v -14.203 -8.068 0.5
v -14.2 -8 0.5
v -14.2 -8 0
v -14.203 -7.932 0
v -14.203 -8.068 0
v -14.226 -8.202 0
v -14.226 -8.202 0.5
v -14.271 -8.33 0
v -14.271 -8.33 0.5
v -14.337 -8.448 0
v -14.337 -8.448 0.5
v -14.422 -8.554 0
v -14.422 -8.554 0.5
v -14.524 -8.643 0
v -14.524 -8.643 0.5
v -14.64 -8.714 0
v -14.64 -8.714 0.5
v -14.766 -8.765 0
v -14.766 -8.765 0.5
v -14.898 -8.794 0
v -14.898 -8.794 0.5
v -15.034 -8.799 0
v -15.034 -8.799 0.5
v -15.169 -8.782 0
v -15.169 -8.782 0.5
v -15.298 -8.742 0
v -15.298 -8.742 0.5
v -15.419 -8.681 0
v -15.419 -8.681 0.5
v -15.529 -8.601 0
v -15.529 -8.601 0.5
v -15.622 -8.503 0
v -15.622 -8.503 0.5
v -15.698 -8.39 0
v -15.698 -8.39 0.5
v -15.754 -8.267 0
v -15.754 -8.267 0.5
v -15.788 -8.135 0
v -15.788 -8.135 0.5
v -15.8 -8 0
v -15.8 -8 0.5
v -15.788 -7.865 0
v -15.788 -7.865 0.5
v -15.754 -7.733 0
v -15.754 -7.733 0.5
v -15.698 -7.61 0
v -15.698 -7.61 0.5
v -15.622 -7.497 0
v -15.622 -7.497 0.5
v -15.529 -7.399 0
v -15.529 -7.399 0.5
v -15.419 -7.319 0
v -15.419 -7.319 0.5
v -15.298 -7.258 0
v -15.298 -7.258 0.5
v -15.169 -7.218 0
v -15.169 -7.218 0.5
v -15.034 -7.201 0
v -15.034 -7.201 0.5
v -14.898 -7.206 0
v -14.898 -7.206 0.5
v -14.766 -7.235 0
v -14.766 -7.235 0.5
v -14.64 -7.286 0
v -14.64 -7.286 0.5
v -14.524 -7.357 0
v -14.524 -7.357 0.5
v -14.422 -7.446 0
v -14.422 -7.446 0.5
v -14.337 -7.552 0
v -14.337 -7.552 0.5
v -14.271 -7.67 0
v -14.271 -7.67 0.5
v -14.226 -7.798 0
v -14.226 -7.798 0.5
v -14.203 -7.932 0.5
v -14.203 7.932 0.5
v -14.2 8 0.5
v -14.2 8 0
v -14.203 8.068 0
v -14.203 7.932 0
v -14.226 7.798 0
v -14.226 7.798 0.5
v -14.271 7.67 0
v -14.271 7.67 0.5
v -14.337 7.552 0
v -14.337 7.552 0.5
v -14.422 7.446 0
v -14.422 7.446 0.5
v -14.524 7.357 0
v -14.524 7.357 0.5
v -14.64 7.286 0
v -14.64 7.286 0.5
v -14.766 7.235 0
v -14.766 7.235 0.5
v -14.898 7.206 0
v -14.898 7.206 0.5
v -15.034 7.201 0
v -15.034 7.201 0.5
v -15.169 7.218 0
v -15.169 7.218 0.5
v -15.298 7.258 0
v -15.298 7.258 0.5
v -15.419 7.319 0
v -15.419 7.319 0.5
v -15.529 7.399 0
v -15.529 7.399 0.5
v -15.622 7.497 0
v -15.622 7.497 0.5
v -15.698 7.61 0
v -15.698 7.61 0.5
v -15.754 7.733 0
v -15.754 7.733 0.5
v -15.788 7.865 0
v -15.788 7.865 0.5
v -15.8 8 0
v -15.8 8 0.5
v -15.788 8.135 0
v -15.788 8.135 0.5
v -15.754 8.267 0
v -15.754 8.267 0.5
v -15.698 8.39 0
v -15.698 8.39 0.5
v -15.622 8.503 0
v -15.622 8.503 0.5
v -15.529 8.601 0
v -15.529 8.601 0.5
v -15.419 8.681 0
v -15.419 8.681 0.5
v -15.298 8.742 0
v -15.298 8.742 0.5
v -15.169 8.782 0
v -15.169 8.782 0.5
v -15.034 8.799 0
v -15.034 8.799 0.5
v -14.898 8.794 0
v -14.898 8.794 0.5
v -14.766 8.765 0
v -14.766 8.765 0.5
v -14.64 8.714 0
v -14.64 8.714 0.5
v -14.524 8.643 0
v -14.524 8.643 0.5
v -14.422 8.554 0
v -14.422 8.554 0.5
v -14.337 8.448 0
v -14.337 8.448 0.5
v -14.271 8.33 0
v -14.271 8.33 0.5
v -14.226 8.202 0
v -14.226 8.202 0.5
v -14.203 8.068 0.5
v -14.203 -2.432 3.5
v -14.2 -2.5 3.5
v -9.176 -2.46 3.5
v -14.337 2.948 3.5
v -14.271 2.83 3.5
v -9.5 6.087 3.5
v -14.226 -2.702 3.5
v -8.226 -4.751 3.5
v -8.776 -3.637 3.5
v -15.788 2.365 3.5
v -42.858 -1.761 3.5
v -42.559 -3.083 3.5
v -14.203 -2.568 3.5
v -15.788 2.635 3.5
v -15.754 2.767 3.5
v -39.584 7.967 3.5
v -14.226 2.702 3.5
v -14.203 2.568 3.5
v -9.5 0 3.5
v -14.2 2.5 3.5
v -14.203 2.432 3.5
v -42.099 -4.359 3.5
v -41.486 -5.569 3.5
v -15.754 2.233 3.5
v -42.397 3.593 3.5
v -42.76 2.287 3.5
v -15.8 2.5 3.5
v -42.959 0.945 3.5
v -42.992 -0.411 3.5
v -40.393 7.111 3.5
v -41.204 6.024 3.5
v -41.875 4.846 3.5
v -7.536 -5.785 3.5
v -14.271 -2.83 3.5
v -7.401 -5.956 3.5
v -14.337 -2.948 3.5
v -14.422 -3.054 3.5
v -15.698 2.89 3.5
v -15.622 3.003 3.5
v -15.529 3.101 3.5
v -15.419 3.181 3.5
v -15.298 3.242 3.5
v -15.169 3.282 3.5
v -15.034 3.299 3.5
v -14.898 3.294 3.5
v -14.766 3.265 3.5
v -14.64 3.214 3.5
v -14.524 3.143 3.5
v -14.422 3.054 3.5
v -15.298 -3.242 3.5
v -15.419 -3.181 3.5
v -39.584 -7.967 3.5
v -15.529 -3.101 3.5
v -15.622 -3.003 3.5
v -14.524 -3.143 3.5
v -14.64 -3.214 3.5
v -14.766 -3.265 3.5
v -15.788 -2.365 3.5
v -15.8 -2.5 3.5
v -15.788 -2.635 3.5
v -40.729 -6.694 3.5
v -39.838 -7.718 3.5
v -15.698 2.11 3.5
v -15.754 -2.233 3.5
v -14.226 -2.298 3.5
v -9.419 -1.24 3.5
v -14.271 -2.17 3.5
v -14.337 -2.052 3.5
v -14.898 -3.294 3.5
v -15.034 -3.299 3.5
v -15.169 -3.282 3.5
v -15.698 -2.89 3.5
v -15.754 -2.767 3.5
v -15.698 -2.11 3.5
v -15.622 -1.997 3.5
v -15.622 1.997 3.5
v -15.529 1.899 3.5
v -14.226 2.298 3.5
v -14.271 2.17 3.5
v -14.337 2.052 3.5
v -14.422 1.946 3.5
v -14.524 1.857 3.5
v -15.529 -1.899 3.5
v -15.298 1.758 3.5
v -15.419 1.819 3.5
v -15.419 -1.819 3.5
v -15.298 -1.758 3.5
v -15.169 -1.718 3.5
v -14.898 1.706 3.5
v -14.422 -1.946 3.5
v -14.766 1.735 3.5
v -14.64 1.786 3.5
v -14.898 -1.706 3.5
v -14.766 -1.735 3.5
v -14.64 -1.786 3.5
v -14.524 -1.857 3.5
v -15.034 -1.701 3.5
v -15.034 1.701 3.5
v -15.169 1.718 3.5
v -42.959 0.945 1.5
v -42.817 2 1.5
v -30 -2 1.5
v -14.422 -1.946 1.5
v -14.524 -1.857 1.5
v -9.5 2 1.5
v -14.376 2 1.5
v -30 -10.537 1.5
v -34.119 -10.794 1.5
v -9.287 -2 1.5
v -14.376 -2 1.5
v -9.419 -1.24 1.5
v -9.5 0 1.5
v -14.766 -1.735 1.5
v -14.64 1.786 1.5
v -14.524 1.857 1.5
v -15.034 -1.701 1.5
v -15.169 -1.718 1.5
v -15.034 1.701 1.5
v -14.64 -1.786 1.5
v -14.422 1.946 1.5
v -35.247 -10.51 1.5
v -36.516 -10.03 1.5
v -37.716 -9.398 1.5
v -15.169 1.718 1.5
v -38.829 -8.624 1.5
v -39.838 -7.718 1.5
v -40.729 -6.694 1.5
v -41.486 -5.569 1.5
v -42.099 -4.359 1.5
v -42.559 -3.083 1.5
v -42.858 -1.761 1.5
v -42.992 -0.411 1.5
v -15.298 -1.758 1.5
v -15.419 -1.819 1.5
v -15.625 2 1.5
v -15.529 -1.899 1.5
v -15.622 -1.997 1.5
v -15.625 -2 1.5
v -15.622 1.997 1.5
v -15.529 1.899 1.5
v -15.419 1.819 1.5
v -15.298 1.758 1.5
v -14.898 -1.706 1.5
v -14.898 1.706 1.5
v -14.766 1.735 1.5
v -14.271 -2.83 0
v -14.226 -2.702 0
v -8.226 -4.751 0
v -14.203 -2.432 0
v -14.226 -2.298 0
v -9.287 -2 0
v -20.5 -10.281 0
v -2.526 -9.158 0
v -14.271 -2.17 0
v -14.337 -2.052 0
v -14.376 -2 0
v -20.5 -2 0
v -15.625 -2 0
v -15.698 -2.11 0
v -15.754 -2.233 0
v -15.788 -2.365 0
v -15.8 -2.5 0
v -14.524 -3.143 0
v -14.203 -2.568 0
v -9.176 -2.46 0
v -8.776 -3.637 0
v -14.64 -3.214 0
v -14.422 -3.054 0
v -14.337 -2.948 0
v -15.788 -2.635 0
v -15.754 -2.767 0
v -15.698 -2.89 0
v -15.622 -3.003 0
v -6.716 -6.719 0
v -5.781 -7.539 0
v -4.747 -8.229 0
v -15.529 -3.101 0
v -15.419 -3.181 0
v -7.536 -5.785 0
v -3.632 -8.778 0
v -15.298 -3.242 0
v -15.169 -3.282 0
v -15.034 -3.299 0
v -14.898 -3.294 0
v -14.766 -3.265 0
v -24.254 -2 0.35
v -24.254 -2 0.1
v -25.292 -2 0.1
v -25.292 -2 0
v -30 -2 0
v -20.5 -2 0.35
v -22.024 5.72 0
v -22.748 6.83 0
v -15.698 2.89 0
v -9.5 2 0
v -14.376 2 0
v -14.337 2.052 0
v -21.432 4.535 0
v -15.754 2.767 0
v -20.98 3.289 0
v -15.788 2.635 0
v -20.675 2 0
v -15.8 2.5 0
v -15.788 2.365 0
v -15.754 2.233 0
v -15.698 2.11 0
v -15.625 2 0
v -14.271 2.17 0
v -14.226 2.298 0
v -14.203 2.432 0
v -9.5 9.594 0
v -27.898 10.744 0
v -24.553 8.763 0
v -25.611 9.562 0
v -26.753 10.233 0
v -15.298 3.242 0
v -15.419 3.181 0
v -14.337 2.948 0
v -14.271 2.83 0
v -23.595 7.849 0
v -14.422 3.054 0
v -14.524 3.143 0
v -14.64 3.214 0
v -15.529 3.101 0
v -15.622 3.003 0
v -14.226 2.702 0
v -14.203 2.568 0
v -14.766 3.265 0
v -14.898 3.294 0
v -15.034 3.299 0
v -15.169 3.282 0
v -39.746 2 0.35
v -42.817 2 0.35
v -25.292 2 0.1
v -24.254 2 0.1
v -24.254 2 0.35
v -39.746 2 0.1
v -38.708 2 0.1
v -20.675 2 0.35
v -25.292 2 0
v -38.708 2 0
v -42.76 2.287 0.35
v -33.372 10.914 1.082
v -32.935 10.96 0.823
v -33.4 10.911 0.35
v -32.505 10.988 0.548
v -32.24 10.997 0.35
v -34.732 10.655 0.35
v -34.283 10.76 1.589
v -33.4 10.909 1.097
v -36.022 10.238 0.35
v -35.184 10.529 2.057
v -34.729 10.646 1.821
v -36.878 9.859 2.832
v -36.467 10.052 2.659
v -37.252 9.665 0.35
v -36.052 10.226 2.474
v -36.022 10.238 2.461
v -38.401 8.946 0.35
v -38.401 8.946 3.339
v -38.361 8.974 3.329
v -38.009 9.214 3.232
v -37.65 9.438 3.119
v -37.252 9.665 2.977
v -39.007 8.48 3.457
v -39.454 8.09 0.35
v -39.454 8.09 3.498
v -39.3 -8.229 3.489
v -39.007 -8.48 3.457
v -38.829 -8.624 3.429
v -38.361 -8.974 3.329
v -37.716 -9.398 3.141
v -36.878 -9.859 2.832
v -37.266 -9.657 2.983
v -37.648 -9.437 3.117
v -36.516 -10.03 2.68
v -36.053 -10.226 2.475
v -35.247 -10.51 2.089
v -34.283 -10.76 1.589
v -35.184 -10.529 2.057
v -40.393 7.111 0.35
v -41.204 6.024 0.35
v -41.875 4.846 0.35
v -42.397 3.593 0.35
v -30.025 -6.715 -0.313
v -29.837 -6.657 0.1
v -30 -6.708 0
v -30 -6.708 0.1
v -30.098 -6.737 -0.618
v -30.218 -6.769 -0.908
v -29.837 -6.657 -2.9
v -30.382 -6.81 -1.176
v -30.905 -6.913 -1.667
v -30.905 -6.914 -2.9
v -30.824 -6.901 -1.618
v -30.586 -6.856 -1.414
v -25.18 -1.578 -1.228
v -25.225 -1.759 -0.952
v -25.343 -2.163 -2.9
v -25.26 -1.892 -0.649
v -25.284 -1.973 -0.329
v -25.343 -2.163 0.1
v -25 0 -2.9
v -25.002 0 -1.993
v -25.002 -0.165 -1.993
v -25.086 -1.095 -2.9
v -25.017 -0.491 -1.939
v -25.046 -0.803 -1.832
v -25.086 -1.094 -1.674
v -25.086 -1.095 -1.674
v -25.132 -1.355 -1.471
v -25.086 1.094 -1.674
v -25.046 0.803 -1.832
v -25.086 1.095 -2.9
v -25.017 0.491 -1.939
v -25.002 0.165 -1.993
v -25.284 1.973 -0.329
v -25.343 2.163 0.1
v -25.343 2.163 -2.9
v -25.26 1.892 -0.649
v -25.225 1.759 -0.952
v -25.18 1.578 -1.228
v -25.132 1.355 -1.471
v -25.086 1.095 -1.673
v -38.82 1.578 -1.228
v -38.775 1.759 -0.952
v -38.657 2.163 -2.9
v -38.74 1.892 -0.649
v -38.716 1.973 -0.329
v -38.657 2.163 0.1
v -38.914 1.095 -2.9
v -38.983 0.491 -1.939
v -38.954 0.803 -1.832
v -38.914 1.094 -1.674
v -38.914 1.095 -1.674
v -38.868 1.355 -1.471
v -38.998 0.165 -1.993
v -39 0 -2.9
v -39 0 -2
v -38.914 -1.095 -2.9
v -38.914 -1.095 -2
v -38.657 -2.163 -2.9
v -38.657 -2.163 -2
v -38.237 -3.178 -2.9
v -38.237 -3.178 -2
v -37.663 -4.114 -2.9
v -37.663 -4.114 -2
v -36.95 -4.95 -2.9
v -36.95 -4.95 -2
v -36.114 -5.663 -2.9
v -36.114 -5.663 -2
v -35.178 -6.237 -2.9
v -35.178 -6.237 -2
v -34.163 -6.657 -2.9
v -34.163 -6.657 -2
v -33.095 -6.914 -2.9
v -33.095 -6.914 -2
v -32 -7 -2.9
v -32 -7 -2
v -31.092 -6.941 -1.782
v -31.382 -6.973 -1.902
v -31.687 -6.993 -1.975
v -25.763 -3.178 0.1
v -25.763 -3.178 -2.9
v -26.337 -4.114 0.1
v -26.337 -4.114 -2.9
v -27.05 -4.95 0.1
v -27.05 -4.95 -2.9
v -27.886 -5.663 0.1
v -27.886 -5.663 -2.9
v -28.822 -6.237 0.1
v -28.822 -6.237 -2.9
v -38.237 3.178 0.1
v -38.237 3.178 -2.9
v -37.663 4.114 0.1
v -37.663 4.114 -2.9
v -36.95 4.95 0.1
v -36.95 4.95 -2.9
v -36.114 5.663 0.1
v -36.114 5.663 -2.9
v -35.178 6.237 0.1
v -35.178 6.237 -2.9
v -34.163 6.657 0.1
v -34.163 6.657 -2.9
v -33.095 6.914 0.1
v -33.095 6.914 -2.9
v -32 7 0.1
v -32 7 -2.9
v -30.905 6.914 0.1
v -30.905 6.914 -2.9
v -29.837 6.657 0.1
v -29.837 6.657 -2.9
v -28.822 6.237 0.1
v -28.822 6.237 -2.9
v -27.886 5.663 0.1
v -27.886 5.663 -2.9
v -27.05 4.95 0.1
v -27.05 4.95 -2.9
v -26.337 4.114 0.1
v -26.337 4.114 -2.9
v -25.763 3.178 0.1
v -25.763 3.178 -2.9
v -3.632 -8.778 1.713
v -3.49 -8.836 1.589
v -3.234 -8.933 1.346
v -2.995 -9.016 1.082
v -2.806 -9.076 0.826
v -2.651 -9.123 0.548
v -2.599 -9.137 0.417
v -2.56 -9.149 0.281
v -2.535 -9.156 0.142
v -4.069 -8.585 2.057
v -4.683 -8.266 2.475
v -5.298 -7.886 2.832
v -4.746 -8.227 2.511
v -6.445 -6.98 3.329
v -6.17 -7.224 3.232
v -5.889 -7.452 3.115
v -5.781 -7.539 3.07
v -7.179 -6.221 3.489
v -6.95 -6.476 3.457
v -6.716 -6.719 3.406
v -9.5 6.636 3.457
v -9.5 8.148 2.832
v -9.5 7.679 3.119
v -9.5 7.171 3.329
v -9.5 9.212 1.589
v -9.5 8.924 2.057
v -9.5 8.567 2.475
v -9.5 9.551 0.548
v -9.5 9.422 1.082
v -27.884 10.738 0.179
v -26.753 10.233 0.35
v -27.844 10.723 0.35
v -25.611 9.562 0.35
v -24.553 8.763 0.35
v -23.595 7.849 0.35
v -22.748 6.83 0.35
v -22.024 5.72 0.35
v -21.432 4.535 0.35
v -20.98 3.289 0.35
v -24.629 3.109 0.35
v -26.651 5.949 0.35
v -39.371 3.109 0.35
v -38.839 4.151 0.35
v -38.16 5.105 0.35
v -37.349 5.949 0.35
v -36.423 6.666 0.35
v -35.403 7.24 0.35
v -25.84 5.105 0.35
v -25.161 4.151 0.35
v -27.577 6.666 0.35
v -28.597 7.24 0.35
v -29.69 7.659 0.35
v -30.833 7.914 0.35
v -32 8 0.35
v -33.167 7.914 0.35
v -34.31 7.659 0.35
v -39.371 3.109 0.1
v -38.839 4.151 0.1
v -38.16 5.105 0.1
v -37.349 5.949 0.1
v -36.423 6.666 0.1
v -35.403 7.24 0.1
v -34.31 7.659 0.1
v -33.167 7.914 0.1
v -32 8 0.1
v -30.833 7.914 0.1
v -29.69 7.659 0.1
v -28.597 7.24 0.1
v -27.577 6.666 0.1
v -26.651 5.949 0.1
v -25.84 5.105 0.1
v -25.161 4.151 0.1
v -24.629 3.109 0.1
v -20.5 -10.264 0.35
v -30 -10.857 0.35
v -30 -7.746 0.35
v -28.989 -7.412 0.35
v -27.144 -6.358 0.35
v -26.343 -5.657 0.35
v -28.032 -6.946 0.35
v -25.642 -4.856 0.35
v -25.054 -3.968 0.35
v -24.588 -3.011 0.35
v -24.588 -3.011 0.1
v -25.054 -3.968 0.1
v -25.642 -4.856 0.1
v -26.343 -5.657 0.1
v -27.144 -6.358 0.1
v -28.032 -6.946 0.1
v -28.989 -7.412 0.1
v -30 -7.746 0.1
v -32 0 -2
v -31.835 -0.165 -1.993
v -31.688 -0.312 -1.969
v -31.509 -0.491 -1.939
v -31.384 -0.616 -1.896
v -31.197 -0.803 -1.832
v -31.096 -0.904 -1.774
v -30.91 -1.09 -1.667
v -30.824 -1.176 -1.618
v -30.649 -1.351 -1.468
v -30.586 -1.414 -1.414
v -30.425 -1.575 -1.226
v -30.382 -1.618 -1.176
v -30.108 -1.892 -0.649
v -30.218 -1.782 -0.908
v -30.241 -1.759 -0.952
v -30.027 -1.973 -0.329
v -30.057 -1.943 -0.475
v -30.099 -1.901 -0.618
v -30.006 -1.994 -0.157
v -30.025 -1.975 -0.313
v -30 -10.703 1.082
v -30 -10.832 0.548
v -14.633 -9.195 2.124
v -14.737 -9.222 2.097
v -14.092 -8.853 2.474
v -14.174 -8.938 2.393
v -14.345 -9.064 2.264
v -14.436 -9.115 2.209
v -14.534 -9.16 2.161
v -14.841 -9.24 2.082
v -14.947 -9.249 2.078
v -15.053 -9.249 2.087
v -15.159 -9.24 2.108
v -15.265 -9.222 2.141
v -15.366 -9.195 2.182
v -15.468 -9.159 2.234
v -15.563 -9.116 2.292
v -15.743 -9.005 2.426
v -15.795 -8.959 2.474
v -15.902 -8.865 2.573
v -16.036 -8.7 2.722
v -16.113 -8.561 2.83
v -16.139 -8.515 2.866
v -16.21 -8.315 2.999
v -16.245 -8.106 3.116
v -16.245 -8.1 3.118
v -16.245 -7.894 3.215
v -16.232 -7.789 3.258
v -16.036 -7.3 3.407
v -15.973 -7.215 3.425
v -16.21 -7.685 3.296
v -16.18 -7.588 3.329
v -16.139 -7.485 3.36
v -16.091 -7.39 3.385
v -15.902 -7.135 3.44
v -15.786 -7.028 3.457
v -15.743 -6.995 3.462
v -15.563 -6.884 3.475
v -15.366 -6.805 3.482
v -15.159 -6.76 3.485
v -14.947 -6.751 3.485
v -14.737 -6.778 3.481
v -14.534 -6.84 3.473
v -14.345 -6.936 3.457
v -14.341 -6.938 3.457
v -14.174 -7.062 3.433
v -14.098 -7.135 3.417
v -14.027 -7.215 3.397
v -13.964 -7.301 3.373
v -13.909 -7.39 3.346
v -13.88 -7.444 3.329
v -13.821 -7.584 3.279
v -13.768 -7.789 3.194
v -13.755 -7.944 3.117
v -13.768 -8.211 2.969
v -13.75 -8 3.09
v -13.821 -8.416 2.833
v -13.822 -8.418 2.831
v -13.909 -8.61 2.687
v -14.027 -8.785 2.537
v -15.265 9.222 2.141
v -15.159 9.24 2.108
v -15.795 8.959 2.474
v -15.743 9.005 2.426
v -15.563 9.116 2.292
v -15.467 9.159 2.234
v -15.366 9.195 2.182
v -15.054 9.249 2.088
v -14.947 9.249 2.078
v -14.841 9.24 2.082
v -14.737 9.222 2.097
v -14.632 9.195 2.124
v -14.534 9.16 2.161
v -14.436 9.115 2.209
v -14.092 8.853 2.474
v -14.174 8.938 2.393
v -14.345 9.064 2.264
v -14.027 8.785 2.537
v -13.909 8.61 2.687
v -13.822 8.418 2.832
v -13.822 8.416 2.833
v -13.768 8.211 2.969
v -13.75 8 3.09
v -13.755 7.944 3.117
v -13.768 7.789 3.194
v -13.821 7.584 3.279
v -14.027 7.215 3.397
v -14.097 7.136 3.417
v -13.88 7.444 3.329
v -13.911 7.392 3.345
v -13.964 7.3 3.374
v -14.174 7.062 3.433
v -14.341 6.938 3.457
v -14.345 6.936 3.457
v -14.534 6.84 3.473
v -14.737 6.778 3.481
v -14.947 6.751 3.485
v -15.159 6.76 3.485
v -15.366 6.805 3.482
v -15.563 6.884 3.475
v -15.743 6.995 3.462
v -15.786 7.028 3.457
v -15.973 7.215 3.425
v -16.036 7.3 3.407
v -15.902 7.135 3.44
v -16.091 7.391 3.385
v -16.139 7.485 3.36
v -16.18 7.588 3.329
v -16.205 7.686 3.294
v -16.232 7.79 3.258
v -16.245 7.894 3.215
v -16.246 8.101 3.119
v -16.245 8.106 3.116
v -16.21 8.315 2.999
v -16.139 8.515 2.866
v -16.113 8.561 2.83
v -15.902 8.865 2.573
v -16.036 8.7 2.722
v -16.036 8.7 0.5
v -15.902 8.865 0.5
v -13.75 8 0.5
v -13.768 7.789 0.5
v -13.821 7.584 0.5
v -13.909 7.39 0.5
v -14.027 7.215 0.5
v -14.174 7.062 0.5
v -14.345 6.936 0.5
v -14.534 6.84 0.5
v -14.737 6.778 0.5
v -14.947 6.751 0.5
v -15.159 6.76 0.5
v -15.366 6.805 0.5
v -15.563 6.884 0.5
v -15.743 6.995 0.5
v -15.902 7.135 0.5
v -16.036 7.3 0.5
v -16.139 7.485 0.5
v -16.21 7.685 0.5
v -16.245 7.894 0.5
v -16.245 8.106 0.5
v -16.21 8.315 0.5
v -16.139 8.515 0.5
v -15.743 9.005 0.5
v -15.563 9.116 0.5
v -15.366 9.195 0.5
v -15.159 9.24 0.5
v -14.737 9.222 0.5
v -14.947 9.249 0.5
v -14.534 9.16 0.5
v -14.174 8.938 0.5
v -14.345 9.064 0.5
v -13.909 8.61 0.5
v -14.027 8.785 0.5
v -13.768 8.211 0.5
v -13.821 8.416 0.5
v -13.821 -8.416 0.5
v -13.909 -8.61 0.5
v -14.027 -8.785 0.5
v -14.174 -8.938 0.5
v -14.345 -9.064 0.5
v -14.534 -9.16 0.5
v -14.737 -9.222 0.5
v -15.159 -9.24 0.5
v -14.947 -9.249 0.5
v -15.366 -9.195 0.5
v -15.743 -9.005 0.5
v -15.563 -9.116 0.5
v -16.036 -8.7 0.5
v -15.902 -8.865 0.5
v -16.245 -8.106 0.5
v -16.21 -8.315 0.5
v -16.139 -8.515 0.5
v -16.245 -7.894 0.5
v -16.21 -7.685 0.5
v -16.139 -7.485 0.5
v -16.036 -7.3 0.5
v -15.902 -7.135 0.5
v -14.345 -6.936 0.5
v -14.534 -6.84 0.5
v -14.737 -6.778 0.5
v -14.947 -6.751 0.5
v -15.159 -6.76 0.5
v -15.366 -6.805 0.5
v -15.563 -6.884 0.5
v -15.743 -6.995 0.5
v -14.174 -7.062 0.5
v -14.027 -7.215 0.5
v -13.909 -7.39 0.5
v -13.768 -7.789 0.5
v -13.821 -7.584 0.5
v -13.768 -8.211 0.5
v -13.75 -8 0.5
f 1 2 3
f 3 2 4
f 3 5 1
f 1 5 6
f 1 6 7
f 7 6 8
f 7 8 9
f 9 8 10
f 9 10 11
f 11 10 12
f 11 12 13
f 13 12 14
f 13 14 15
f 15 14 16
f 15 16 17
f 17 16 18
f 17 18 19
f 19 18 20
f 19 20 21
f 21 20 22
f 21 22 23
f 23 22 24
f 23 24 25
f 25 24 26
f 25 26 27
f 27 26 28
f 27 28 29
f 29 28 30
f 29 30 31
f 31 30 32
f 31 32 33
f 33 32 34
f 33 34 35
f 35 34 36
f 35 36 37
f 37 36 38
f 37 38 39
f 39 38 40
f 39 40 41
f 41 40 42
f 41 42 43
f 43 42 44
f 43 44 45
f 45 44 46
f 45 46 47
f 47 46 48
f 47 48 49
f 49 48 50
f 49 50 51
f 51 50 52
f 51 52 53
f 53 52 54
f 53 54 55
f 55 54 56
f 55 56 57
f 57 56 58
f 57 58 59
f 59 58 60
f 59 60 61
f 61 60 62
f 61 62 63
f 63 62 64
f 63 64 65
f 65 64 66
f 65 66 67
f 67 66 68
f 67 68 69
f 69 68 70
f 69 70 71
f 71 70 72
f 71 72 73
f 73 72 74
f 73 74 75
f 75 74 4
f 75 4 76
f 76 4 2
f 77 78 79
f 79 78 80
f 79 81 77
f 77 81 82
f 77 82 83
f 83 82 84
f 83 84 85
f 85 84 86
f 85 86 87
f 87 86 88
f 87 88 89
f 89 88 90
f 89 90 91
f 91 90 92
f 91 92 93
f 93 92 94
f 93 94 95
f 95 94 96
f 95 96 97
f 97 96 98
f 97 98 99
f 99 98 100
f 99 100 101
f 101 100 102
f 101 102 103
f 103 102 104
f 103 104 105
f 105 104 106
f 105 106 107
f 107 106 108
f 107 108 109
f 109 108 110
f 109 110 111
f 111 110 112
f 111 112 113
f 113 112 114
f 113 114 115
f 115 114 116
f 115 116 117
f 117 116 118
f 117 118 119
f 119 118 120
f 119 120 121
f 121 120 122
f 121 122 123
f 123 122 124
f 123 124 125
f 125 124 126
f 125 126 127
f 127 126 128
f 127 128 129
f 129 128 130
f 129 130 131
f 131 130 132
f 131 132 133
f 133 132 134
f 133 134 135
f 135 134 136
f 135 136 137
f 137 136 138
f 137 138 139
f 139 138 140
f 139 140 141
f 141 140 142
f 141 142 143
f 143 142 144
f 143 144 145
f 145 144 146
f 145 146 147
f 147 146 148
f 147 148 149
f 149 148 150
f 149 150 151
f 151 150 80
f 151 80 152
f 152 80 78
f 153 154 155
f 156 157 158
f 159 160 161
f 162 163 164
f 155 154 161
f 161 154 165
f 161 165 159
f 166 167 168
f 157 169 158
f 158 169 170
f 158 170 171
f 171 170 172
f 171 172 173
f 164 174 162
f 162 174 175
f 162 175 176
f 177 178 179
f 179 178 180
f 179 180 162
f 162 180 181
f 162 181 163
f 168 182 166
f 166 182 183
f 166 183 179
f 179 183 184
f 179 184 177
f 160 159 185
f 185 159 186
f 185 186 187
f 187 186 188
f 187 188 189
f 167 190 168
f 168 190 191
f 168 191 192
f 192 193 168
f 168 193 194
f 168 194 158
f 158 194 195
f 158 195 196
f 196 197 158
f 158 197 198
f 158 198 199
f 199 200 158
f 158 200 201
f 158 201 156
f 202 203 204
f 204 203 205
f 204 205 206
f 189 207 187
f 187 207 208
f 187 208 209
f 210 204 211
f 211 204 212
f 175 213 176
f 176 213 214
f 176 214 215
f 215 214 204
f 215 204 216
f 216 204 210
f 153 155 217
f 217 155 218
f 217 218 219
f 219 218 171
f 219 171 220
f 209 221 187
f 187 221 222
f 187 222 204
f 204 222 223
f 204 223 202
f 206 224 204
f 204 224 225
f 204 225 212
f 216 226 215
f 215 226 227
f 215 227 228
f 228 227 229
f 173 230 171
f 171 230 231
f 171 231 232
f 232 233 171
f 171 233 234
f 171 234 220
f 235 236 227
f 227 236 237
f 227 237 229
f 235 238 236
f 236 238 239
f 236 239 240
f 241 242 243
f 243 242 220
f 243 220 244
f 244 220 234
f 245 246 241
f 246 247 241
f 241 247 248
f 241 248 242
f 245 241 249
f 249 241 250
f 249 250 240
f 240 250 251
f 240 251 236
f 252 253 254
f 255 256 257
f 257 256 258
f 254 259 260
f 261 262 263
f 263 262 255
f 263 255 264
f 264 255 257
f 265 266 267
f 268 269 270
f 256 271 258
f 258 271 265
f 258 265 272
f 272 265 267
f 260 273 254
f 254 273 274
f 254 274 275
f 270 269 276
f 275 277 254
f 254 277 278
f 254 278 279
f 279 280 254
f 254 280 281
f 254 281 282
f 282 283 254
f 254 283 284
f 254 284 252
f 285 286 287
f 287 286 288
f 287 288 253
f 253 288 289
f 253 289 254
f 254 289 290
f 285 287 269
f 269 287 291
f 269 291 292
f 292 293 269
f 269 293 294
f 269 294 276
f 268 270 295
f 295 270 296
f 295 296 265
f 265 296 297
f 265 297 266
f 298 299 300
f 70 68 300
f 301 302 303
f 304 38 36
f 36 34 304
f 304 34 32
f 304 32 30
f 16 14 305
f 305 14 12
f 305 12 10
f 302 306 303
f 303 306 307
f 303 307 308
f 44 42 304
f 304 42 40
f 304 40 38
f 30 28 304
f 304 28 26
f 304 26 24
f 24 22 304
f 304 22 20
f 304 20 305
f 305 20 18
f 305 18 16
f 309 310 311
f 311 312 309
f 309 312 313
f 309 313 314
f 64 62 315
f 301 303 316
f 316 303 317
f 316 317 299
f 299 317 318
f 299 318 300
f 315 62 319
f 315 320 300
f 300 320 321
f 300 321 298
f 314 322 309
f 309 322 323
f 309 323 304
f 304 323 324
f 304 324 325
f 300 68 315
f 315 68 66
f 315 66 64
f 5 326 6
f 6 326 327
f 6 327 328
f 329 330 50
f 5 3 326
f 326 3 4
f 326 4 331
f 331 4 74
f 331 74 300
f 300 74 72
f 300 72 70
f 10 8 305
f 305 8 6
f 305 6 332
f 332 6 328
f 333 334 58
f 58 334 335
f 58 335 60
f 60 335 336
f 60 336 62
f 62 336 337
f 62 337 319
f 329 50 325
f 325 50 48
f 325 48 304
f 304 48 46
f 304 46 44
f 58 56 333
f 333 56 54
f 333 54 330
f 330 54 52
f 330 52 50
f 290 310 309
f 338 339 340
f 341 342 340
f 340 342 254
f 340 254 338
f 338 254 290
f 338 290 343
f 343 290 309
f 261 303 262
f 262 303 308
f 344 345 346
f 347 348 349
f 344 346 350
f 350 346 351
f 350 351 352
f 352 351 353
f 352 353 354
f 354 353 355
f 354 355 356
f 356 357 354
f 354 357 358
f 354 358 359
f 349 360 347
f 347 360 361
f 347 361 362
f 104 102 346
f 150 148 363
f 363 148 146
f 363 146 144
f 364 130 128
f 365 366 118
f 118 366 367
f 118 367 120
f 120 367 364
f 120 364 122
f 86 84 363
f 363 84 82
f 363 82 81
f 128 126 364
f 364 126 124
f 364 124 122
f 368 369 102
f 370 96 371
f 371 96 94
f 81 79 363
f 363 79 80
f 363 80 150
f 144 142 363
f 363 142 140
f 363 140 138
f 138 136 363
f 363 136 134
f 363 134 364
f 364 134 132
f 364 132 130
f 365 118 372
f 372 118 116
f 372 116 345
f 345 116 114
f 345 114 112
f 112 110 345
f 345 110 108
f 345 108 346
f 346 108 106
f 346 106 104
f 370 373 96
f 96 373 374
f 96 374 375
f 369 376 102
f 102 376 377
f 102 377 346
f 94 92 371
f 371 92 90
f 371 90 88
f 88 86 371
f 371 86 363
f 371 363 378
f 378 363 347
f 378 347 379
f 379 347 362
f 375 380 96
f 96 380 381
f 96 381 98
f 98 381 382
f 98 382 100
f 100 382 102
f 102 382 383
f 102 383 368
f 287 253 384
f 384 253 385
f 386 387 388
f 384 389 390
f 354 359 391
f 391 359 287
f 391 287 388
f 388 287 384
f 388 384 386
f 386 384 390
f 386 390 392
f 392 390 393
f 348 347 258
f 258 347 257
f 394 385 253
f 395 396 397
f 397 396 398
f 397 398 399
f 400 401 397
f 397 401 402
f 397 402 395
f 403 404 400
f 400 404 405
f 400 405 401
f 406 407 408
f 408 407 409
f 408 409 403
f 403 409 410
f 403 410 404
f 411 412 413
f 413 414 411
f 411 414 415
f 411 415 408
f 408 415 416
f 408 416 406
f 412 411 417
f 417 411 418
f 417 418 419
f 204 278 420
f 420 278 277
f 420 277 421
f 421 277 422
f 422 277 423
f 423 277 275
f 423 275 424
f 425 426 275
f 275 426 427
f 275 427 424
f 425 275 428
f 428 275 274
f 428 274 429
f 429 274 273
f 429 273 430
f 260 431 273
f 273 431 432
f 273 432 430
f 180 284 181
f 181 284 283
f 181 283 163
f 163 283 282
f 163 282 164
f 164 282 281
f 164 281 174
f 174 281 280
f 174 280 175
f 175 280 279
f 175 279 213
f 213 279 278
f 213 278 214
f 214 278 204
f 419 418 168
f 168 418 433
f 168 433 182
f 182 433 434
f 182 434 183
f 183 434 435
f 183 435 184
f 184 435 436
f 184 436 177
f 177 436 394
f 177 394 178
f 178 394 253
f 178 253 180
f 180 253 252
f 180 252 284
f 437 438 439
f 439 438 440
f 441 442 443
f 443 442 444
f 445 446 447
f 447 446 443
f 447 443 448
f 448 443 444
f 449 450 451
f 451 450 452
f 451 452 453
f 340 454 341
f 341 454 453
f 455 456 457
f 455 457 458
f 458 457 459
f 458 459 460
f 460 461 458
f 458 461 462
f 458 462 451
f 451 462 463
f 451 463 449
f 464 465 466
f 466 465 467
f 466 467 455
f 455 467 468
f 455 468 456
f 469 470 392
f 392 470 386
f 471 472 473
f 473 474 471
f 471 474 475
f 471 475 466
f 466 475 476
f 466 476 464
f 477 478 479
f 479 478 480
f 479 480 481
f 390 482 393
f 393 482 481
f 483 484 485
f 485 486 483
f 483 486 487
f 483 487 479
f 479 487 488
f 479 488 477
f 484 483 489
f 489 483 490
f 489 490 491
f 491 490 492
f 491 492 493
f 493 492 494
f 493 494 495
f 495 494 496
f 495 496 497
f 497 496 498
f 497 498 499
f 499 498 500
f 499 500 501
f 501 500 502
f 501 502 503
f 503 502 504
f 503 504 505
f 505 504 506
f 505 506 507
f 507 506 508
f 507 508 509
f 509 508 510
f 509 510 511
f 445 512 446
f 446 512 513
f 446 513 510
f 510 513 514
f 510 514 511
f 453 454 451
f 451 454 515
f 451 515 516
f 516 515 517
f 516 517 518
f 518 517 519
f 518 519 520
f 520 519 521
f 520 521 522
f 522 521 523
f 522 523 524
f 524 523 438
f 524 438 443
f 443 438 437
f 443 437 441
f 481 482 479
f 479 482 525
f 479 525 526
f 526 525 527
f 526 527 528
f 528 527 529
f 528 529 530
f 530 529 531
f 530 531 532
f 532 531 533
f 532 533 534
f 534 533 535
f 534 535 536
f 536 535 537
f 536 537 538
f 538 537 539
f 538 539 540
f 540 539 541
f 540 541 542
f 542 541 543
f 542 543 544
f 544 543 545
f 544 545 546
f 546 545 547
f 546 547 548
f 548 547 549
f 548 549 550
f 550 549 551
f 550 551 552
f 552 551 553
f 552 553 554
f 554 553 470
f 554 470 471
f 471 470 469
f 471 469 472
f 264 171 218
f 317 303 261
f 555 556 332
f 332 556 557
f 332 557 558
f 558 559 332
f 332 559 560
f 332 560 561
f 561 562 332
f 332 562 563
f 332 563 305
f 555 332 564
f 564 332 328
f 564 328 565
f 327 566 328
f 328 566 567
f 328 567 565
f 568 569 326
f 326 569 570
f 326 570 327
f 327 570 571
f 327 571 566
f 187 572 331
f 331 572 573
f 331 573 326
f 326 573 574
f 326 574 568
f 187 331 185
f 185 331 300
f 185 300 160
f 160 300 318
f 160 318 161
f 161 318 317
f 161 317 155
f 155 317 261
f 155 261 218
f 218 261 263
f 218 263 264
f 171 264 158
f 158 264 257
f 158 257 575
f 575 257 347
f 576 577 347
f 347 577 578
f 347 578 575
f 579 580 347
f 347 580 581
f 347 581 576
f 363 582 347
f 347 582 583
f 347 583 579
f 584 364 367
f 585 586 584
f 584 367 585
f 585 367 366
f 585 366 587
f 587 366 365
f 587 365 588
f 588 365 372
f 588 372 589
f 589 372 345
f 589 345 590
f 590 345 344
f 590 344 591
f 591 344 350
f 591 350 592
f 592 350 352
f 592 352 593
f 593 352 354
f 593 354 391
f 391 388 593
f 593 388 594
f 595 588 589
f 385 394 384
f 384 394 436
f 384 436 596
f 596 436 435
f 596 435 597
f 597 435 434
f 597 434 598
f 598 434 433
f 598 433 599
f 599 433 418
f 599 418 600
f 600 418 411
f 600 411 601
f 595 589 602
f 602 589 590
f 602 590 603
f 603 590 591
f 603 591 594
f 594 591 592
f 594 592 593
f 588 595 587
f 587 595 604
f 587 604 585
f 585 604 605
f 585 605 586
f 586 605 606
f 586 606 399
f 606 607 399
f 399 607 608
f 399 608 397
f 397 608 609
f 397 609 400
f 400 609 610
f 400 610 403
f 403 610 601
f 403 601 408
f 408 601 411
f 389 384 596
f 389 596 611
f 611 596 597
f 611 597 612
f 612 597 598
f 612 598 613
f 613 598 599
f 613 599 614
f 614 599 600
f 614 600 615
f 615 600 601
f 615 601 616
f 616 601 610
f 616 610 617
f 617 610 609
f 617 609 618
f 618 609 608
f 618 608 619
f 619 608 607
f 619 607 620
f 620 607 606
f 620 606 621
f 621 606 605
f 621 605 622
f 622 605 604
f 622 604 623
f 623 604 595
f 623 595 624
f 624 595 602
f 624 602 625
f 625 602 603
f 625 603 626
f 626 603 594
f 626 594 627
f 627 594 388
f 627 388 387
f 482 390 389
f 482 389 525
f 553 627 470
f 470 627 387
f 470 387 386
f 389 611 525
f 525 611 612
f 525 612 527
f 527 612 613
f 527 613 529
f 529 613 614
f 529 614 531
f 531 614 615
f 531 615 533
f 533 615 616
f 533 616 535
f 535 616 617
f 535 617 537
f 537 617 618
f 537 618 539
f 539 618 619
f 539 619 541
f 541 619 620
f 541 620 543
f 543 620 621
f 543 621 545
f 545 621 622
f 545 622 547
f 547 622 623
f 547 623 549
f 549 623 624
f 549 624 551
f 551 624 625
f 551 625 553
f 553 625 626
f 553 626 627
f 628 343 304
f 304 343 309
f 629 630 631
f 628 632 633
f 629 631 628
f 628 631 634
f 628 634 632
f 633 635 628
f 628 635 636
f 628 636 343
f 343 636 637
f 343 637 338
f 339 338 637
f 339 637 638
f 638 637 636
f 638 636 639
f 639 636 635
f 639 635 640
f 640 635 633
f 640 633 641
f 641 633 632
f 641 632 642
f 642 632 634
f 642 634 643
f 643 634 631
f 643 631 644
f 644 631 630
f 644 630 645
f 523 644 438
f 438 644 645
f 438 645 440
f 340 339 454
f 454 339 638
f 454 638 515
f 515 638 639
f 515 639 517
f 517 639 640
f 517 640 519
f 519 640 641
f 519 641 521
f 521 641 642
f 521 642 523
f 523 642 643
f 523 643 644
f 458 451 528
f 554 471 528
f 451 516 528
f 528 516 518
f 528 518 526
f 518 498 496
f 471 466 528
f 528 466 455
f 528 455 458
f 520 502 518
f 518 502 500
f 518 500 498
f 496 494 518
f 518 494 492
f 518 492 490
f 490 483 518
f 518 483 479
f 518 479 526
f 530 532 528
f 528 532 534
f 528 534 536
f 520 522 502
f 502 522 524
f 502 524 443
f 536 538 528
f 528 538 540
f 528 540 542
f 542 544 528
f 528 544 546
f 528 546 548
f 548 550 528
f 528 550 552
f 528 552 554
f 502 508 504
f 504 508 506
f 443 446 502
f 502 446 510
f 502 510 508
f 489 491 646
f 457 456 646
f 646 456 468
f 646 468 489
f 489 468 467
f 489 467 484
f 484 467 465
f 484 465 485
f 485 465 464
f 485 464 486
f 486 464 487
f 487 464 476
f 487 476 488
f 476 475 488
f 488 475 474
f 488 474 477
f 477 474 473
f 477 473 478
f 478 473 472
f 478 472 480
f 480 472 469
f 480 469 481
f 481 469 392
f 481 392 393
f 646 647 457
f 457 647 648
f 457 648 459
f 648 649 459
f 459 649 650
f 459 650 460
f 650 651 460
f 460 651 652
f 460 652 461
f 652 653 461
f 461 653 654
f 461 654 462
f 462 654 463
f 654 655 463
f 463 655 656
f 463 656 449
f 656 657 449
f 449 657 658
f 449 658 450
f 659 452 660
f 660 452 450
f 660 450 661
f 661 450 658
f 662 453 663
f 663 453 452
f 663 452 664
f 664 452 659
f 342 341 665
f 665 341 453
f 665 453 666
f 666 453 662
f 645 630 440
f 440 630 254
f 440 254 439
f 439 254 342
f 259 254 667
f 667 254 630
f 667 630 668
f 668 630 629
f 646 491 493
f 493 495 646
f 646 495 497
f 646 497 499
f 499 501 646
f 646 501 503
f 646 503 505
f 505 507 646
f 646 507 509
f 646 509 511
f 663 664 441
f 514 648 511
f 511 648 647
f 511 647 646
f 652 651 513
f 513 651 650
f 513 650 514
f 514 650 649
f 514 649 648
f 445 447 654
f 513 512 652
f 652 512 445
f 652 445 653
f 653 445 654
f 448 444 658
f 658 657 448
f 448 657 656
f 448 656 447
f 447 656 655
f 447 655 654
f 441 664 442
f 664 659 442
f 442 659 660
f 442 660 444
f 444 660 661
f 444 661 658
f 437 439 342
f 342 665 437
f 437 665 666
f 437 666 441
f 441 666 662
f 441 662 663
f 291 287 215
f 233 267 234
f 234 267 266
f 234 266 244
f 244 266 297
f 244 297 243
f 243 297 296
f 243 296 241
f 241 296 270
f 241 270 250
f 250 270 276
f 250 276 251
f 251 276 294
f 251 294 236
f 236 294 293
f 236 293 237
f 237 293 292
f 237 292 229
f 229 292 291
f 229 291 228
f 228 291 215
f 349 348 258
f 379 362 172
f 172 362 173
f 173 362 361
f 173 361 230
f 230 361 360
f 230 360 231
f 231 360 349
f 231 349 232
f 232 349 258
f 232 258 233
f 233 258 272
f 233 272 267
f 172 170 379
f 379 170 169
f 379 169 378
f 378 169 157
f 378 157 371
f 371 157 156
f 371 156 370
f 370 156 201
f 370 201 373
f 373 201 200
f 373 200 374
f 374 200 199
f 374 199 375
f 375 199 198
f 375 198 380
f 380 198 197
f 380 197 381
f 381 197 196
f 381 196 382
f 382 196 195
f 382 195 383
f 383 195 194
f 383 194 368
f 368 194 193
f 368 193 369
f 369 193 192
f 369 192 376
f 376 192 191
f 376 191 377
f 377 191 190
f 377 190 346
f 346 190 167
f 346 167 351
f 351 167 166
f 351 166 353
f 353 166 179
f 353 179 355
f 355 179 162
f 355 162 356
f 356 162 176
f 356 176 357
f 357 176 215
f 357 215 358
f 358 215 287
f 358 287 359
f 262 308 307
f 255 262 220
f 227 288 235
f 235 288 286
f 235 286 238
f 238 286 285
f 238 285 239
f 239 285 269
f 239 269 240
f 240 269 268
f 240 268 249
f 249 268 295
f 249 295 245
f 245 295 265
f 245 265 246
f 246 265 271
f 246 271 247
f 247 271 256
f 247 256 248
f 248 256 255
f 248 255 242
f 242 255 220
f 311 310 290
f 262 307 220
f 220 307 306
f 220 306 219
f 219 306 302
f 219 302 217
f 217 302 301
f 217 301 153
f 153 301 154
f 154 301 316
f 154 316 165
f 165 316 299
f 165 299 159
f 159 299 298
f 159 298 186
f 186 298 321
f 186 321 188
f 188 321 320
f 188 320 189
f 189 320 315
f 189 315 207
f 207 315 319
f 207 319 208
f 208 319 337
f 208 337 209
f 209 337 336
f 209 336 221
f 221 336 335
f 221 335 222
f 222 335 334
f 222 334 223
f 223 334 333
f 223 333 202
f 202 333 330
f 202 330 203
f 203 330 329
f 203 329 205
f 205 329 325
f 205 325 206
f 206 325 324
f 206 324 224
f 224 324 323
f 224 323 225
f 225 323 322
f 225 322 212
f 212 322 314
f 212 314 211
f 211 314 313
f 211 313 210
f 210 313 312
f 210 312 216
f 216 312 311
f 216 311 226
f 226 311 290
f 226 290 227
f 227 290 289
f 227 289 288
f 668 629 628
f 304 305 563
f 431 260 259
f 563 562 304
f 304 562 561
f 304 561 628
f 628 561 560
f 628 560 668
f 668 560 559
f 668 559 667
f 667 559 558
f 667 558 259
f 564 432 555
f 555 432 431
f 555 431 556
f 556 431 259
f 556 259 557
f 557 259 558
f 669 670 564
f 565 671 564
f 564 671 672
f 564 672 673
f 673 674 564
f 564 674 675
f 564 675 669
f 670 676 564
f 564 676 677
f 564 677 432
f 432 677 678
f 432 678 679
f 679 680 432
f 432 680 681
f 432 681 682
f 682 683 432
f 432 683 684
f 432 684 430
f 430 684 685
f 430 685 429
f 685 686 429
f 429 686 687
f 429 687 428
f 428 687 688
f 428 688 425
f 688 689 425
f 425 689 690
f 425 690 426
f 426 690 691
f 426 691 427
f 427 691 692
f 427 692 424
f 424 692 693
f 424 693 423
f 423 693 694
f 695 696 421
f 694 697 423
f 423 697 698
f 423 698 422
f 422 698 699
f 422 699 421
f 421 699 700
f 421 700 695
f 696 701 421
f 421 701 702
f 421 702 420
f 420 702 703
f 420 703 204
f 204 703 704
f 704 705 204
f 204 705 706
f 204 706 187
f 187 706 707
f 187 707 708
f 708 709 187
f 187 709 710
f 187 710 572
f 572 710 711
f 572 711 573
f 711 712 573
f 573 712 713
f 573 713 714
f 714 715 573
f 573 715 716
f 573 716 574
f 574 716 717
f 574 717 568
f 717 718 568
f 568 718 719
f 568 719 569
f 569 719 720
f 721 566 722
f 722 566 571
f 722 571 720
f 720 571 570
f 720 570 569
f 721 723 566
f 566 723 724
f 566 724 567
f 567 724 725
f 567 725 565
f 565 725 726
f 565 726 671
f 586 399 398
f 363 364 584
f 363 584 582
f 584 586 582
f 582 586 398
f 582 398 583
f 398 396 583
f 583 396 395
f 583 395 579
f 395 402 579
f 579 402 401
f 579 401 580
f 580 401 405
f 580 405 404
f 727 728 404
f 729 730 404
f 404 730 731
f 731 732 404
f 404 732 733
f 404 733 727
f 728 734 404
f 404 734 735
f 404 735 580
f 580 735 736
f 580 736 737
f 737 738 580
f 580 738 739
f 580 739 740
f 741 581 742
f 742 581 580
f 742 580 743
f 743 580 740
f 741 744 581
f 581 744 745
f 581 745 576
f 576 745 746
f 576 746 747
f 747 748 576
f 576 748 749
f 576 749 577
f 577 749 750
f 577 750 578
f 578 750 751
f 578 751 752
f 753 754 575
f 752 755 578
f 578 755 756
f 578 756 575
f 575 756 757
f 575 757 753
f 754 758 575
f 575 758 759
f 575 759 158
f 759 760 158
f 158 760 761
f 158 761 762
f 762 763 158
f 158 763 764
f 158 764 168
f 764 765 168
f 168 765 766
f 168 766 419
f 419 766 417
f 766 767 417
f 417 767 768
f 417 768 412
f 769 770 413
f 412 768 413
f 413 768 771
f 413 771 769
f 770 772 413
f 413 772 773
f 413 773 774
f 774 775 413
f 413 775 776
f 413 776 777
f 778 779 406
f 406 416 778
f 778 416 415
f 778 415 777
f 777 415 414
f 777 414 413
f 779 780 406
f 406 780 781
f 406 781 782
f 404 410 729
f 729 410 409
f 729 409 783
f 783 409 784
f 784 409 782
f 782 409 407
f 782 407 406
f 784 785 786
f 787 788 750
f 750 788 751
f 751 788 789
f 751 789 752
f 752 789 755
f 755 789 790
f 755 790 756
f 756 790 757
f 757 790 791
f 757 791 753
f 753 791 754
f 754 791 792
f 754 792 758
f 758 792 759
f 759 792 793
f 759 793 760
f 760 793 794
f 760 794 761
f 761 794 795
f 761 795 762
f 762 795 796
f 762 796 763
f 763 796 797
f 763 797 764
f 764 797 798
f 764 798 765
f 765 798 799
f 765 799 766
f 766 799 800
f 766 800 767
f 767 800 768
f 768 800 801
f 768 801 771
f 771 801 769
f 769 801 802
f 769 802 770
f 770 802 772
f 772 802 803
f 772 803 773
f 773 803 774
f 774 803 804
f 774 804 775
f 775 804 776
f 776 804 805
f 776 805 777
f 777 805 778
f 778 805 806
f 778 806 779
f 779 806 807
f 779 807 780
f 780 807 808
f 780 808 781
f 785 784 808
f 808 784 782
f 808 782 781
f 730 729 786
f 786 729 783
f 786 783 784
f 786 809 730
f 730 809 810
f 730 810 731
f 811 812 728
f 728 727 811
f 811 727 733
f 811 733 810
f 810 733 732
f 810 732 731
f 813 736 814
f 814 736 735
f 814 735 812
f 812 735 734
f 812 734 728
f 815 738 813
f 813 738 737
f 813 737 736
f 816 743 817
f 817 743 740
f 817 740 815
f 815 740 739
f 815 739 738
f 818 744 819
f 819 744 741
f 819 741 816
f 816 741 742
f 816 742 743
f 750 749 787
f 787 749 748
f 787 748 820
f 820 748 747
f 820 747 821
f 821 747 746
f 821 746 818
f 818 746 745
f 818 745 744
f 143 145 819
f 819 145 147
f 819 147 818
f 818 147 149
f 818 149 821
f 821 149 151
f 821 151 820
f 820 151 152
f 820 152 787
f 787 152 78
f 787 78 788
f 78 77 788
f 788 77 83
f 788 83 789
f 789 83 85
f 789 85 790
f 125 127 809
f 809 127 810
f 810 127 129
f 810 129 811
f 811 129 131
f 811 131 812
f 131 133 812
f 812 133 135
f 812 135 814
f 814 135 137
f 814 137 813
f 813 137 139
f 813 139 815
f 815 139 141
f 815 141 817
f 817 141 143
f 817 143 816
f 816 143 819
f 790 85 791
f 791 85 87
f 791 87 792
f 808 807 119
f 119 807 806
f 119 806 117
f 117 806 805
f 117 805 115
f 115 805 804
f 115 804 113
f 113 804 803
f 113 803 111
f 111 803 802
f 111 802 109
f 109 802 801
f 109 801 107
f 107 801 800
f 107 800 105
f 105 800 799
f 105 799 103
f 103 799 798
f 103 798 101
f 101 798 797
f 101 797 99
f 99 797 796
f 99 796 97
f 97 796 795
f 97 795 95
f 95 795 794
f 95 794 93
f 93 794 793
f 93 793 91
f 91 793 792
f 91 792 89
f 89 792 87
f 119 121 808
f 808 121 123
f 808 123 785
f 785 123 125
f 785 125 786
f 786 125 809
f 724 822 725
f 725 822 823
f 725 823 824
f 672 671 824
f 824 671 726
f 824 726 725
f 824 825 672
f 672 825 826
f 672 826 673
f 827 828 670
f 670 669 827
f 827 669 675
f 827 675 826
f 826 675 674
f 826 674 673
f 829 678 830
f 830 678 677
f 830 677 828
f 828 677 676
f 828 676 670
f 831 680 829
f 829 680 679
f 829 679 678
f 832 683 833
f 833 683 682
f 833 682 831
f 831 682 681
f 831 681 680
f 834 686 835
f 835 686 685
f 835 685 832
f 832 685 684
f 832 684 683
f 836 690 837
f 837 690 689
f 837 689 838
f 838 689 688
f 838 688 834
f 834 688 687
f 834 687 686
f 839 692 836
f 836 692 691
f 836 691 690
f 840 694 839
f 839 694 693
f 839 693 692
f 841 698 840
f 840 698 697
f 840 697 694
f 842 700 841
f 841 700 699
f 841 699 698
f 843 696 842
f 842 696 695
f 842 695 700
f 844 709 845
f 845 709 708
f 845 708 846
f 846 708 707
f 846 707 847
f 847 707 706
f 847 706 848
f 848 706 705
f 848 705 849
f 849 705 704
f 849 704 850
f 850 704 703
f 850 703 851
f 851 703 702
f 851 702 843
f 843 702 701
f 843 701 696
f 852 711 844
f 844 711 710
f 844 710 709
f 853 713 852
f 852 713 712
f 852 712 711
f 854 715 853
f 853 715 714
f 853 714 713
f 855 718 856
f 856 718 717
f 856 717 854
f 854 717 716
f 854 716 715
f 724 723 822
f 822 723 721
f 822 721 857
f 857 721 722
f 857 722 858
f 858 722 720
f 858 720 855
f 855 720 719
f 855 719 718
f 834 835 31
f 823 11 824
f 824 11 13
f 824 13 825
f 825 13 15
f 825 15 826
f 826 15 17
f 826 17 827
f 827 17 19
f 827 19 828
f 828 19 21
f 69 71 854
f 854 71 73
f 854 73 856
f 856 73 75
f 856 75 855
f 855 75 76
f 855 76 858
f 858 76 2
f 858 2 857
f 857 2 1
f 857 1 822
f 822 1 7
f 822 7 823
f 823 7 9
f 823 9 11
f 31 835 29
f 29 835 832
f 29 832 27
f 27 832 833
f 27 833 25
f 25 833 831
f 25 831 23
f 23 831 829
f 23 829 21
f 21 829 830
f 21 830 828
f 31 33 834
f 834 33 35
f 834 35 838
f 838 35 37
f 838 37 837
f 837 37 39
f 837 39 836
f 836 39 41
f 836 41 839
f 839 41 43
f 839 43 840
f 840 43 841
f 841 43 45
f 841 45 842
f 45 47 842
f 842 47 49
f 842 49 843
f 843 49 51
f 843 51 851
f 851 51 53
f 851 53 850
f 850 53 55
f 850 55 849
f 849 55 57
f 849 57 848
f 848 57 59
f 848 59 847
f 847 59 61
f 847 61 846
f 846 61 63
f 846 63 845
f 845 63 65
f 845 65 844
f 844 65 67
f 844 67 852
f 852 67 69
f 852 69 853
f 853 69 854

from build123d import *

# Parameters (mm, degrees)
BOSS_EXTRUDE1_DEPTH = 3.5
SKETCH8_R           = 11.5
JOINT_HOLE_DEPTH    = 0.35
JOINT_START         = 0.35
SKETCH3_R           = 7
JOINT_INSERT_DEPTH  = 3.25
FRICTION_START      = 0.35
SKETCH4_R           = 8
SKETCH4_R_2         = 7
FRICTION_DEPTH      = 0.25
CUT_EXTRUDE2_DEPTH  = 43
CUT_EXTRUDE3_DEPTH  = 11
SKETCH2_R           = 0.8
SCREW_HOLES_DEPTH   = 45.522466239
FILLET1_R           = 3.5
CUT_EXTRUDE4_START  = 3.5
SKETCH9_R           = 1.25
CUT_EXTRUDE4_DEPTH  = 3


with BuildPart() as part:
    # Sketch1 → Boss-Extrude1 (new body)
    with BuildSketch(Plane.XY):
        with BuildLine():
            ThreePointArc((-2.526427532, -9.157901721), (-7.558143342, -5.755386106), (-9.5, 0))
            Line((-9.5, 0), (-9.5, 9.59375))
            Line((-9.5, 9.59375), (-32, 11))
            ThreePointArc((-32, 11), (-43, 0), (-32, -11))
            Line((-32, -11), (-2.526427532, -9.157901721))
        make_face()
    extrude(amount=BOSS_EXTRUDE1_DEPTH)

    # Sketch8 → Joint Hole (cut)
    with BuildSketch(Plane.XY):
        with Locations((-32, 0)):
            Circle(SKETCH8_R)
        with BuildLine():
            Line((-20.5, -11.5), (-20.5, 0))
            ThreePointArc((-20.5, 0), (-23.868272016, -8.131727984), (-32, -11.5))
            Line((-32, -11.5), (-20.5, -11.5))
        make_face()
    extrude(amount=JOINT_HOLE_DEPTH, mode=Mode.SUBTRACT)

    # Sketch3 → Joint Insert (add)
    with BuildSketch(Plane.XY.offset(JOINT_START)):
        with Locations((-32, 0)):
            Circle(SKETCH3_R)
    extrude(amount=-JOINT_INSERT_DEPTH)

    # Sketch4 → Friction (add)
    with BuildSketch(Plane.XY.offset(FRICTION_START)):
        with Locations((-32, 0)):
            Circle(SKETCH4_R)
        with Locations((-32, 0)):
            Circle(SKETCH4_R_2, mode=Mode.SUBTRACT)
    extrude(amount=-FRICTION_DEPTH)

    # Sketch6 → Cut-Extrude2 (cut)
    with BuildSketch(Plane(origin=(0, 0, 0), x_dir=(0, 0, -1), z_dir=(1, 0, 0))):
        with BuildLine():
            Line((-1.5, 0), (-1.5, 2))
            Line((-1.5, 2), (0, 2))
            ThreePointArc((0, 2), (2, 0), (0, -2))
            Line((0, -2), (-1.5, -2))
            Line((-1.5, -2), (-1.5, 0))
        make_face()
    extrude(amount=-CUT_EXTRUDE2_DEPTH, mode=Mode.SUBTRACT)

    # Sketch7 → Cut-Extrude3 (cut)
    with BuildSketch(Plane(origin=(0, 0, 0), x_dir=(1, 0, 0), z_dir=(0, 1, 0))):
        with BuildLine():
            Line((-32, -1.5), (-30, -1.5))
            Line((-30, -1.5), (-30, 0))
            ThreePointArc((-30, 0), (-30.585786438, 1.414213562), (-32, 2))
            Line((-32, 2), (-43, 2))
            Line((-43, 2), (-43, -1.5))
            Line((-43, -1.5), (-32, -1.5))
        make_face()
    extrude(amount=-CUT_EXTRUDE3_DEPTH, mode=Mode.SUBTRACT)

    # Sketch2 → Screw Holes (cut, through all)
    with BuildSketch(Plane.XY):
        with Locations((-15, 8)):
            Circle(SKETCH2_R)
        with Locations((-15, -8)):
            Circle(SKETCH2_R)
        with Locations(Location((-15, 2.5, 0), (0, 0, 218.682187453))):
            Circle(SKETCH2_R)
        with Locations(Location((-15, -2.5, 0), (0, 0, 141.317812547))):
            Circle(SKETCH2_R)
    extrude(amount=SCREW_HOLES_DEPTH, mode=Mode.SUBTRACT)

    # Fillet1
    # the kernel refuses this fillet: 3.5 mm, written as the material it takes off along each edge
    with BuildSketch(Plane(origin=(-40.732960062, -11.545810004, 3.5), x_dir=(-0.062378286155180485, 0.9980525784828885, 0), z_dir=(0.9980525784828886, 0.06237828615518049, 0))) as fillet1_piece_1:
        with BuildLine():
            CenterArc((FILLET1_R, -FILLET1_R), FILLET1_R, 90, 90)
            Line((0, -FILLET1_R), (0, 0))
            Line((0, 0), (FILLET1_R, 0))
        make_face()
    extrude(amount=47.031081933, mode=Mode.SUBTRACT)
    with BuildSketch(Plane(origin=(-0.767039938, 9.047939996, 3.5), x_dir=(-0.06237828615518047, -0.9980525784828886, 0), z_dir=(-0.9980525784828886, 0.062378286155180464, 0))) as fillet1_piece_2:
        with BuildLine():
            CenterArc((FILLET1_R, -FILLET1_R), FILLET1_R, 90, 90)
            Line((0, -FILLET1_R), (0, 0))
            Line((0, 0), (FILLET1_R, 0))
        make_face()
    extrude(amount=40.043902481, mode=Mode.SUBTRACT)

    # Sketch9 → Cut-Extrude4 (cut)
    with BuildSketch(Plane.XY.offset(CUT_EXTRUDE4_START)):
        with Locations((-15, 8)):
            Circle(SKETCH9_R)
        with Locations((-15, -8)):
            Circle(SKETCH9_R)
    extrude(amount=-CUT_EXTRUDE4_DEPTH, mode=Mode.SUBTRACT)


solid = part.part
